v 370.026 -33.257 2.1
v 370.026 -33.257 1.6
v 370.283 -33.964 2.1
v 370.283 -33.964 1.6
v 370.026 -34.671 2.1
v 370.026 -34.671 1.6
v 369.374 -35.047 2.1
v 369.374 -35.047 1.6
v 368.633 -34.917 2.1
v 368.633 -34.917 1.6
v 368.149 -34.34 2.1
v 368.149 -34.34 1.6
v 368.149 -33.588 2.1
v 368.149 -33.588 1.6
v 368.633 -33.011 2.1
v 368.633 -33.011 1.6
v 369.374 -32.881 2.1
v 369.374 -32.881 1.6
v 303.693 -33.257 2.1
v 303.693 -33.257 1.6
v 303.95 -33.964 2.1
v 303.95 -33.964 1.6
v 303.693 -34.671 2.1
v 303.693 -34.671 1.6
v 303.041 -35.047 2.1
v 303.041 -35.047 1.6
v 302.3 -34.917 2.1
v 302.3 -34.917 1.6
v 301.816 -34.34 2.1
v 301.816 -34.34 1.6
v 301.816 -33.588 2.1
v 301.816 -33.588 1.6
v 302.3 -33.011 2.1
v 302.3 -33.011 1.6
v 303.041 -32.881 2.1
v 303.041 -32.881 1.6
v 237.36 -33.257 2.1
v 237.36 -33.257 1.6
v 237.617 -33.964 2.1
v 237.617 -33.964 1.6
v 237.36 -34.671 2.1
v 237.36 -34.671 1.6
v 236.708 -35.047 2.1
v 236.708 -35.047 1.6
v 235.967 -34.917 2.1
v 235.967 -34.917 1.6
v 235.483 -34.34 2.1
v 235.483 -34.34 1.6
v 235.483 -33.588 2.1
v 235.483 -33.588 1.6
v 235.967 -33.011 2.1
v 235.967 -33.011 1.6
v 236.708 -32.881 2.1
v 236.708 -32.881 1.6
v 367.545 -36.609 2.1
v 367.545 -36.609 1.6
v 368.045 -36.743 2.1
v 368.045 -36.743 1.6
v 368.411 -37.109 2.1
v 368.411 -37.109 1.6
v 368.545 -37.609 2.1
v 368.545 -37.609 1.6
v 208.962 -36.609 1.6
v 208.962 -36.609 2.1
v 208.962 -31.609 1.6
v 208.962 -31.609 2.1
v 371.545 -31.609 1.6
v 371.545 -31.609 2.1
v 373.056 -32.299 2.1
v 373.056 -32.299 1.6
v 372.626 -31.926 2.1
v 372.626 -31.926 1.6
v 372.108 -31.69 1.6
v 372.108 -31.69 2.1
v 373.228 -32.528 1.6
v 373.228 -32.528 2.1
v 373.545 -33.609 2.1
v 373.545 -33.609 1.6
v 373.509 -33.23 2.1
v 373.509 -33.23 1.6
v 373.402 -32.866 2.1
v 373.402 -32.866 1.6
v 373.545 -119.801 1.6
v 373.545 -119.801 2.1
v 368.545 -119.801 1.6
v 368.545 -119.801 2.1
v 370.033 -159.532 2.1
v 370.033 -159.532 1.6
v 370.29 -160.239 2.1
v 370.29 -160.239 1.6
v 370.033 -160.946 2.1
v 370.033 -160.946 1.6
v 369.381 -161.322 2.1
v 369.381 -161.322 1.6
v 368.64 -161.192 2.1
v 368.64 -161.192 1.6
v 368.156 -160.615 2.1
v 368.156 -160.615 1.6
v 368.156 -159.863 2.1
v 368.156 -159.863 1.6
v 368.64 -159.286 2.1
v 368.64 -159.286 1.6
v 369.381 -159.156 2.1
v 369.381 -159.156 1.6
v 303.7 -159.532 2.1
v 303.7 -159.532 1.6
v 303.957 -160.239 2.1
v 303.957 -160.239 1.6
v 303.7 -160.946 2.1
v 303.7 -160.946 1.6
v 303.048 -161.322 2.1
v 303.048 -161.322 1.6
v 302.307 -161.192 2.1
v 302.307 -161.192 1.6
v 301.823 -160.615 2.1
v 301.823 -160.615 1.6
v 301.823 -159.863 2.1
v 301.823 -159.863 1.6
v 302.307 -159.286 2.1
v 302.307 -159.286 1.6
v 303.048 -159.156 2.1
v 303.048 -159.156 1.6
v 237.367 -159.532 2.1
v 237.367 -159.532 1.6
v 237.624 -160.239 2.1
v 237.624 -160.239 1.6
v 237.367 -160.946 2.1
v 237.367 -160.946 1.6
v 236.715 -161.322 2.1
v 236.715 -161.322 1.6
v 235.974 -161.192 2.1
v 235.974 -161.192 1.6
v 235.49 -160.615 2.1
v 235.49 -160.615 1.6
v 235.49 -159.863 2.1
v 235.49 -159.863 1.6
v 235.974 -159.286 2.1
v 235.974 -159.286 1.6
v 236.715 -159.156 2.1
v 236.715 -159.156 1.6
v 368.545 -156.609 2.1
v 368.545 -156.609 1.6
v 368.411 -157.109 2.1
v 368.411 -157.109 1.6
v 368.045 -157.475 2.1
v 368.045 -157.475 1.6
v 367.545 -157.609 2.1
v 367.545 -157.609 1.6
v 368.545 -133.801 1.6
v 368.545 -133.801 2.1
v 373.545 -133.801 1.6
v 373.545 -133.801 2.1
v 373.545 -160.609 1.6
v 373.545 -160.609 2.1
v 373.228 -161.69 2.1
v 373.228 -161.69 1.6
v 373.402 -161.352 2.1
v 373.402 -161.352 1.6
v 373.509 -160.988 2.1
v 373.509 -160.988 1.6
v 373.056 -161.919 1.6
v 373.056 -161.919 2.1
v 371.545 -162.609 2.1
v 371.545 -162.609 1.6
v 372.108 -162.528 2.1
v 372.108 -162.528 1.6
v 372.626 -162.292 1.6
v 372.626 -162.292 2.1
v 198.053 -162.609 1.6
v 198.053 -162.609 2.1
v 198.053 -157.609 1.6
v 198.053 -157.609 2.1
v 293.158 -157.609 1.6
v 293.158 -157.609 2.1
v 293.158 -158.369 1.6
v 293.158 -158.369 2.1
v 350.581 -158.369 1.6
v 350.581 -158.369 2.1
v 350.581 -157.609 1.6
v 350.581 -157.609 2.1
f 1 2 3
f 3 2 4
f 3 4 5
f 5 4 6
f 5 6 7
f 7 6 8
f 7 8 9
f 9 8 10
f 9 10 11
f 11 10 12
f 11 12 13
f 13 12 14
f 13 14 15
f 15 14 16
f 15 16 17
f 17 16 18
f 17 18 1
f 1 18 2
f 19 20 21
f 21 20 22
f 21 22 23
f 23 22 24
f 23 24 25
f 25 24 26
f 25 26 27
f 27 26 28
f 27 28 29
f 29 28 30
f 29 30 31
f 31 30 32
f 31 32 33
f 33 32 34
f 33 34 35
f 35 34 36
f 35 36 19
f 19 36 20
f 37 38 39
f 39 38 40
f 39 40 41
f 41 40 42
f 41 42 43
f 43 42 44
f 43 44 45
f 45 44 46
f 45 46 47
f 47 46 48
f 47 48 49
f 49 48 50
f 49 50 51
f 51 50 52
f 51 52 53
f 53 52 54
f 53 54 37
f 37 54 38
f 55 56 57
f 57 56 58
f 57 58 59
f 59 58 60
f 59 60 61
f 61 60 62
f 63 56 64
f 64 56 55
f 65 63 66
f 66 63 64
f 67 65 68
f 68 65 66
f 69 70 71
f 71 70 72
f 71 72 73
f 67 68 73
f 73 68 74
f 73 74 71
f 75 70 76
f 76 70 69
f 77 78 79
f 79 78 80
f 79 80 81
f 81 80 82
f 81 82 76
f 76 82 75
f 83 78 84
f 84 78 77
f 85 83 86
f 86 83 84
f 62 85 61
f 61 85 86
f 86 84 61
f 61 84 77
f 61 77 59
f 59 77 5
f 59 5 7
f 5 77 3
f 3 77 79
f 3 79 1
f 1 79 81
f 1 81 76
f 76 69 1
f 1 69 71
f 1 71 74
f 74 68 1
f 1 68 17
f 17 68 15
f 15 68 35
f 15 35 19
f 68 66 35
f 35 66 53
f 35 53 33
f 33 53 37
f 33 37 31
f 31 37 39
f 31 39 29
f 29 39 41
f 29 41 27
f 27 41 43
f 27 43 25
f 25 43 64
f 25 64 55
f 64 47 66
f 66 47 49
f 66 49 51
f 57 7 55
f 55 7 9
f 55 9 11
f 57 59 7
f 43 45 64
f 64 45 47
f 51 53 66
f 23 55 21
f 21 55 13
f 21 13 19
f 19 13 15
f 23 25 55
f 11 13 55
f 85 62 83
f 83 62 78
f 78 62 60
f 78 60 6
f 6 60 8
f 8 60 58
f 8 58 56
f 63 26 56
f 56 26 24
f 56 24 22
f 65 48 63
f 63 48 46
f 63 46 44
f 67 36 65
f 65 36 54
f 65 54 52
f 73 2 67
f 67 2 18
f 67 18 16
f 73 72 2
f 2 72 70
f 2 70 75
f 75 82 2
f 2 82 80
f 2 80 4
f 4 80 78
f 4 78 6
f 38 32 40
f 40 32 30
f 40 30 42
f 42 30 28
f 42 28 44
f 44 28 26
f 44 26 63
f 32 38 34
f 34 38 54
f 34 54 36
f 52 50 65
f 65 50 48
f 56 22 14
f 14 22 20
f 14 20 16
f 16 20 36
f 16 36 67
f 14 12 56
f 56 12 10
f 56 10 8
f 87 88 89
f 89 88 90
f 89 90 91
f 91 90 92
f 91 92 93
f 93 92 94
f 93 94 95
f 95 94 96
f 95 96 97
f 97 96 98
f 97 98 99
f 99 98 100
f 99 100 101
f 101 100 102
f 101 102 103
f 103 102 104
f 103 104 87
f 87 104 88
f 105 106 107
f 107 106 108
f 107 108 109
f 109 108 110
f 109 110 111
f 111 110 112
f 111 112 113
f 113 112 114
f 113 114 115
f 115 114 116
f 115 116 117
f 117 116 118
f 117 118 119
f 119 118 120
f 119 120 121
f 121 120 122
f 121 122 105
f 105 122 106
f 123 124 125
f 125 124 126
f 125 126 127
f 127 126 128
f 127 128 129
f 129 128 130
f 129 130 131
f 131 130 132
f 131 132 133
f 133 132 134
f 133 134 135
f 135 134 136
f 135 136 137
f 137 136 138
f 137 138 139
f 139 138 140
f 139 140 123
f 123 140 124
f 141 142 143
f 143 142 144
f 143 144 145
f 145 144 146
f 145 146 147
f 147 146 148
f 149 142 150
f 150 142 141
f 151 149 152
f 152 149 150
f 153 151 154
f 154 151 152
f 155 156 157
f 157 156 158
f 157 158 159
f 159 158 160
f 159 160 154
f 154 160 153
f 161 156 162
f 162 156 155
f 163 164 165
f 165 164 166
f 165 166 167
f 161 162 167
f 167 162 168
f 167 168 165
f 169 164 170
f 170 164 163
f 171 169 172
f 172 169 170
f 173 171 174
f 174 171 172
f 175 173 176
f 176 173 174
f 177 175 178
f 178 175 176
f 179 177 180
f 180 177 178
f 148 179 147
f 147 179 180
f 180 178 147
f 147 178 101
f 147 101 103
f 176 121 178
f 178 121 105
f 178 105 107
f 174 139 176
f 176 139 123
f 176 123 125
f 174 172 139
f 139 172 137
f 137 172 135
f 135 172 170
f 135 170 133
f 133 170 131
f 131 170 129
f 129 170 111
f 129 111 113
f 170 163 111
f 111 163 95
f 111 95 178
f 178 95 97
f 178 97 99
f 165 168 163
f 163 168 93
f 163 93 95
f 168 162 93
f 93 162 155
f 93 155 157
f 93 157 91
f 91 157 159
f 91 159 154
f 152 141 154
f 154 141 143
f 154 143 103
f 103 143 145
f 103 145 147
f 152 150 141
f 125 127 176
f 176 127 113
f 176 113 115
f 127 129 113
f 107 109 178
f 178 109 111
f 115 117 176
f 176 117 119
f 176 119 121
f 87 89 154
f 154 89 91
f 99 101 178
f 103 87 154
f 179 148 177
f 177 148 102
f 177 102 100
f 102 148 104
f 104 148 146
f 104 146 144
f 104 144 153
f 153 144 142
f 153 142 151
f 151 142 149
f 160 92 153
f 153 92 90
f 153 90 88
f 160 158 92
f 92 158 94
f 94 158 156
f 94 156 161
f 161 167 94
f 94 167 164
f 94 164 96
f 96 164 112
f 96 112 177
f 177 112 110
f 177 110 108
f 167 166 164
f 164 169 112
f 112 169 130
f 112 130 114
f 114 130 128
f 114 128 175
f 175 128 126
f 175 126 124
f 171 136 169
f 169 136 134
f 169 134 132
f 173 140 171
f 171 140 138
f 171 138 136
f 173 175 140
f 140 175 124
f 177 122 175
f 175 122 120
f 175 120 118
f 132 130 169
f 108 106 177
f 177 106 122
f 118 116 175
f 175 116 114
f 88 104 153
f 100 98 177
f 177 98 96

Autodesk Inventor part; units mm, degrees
ref_plane "YZ Plane" through (0, 0, 0) normal (1, 0, 0) x (0, 1, 0)
ref_plane "XZ Plane" through (0, 0, 0) normal (0, 1, 0) x (-1, 0, 0)
ref_plane "XY Plane" through (0, 0, 0) normal (0, 0, 1) x (1, 0, 0)
ref_plane "Work Plane2" through (35.545, -31.609, 1.6) normal (0, 0, 1) x (1, 0, 0)
ref_plane "Work Plane1" through (35.545, -31.609, 1.6) normal (0, 0, 1) x (1, 0, 0)
sketch "Sketch1" plane through (35.545, -31.609, 1.6) normal (0, 0, 1) x (1, 0, 0)
  line L0 (0, 0) -> (336, 0) projected
  line L1 (-2, -129) -> (-2, -2) projected
  line L2 (-1.6825, -0.9187) -> (-1.5115, -0.6903) projected
  arc A0 (0, 0) -> (-2, -2) centre (0, -2) ccw
  line L3 (338, -2) -> (338, -129) projected
  line L4 (337.5115, -0.6903) -> (337.6825, -0.9187) projected
  arc A1 (338, -2) -> (336, 0) centre (336, -2) ccw
  line L5 (336, -131) -> (0, -131) projected
  line L6 (337.6825, -130.0813) -> (337.5115, -130.3097) projected
  arc A2 (336, -131) -> (338, -129) centre (336, -129) ccw
  arc A3 (-2, -129) -> (0, -131) centre (0, -129) ccw
  circle A4 centre (1.98, -128.63) radius 1.1 projected
  circle A5 centre (1.98, -128.63) radius 1.1
  circle A6 centre (68.313, -128.63) radius 1.1 projected
  circle A7 centre (134.646, -128.63) radius 1.1 projected
  circle A8 centre (134.646, -128.63) radius 1.1
  circle A9 centre (68.313, -128.63) radius 1.1
  circle A10 centre (200.979, -128.63) radius 1.1 projected
  circle A11 centre (267.312, -128.63) radius 1.1 projected
  circle A12 centre (333.645, -128.63) radius 1.1 projected
  circle A13 centre (333.645, -128.63) radius 1.1
  circle A14 centre (267.312, -128.63) radius 1.1
  circle A15 centre (200.979, -128.63) radius 1.1
  circle A16 centre (333.638, -2.355) radius 1.1 projected
  circle A17 centre (1.973, -2.355) radius 1.1 projected
  circle A18 centre (68.306, -2.355) radius 1.1 projected
  circle A19 centre (134.639, -2.355) radius 1.1 projected
  circle A20 centre (200.972, -2.355) radius 1.1 projected
  circle A21 centre (267.305, -2.355) radius 1.1 projected
  circle A22 centre (333.645, -2.355) radius 1.093
  circle A23 centre (267.305, -2.355) radius 1.1
  circle A24 centre (200.972, -2.355) radius 1.1
  circle A25 centre (134.639, -2.355) radius 1.1
  circle A26 centre (68.306, -2.355) radius 1.1
  circle A27 centre (1.973, -2.355) radius 1.1
  line L7 (3, -4.2357) -> (125.2758, -4.2357) construction
  line L8 (4, -5) -> (332, -5)
  line L9 (333, -6) -> (333, -125)
  line L10 (332, -126) -> (4, -126)
  line L11 (3, -125) -> (3, -6)
  arc A28 (4, -5) -> (3, -6) centre (4, -6) ccw
  arc A29 (333, -6) -> (332, -5) centre (332, -6) ccw
  arc A30 (332, -126) -> (333, -125) centre (332, -125) ccw
  arc A31 (3, -125) -> (4, -126) centre (4, -125) ccw
  line L12 (162.5077, 0) -> (162.5077, -5)
  line L13 (173.4174, -5) -> (173.4174, 0)
  circle A32 centre (320.737, -95.692) radius 0.175 projected
  line L14 (333, -88.192) -> (338, -88.192)
  line L15 (333, -102.192) -> (338, -102.192)
  line L16 (257.6125, -126) -> (315.0362, -126)
  line L17 (315.0362, -126) -> (315.0362, -126.7604)
  line L18 (315.0362, -126.7604) -> (257.6125, -126.7604)
  line L19 (257.6125, -126.7604) -> (257.6125, -126)
  line L20 (162.5077, -126) -> (162.5077, -131)
  point P0 (-35.545, 31.609)
  point P1 (-1.5115, -130.3097)
  point P2 (335.5, -88.192)
  point P3 (0, -131)
  point P4 (337.6825, -130.0813)
  point P5 (-1.6825, -0.9187)
  point P6 (337.6825, -0.9187)
  dimension "d2" = 5
  dimension "d3" = 5
  dimension "d4" = 5
  dimension "d5" = 5
  dimension "d6" = 1
  dimension "d7" = 1
  dimension "d8" = 1
  dimension "d9" = 1
extrude "Extrusion3" add sketch "Sketch1" along normal blind 0.5 contours L0 A1 L4 L3 L14 L9 A29 L8 L13 | L20 L10 L19 L18 L17 A30 L9 L15 L3 A2 L6 L5
properties part number "spacer1"
